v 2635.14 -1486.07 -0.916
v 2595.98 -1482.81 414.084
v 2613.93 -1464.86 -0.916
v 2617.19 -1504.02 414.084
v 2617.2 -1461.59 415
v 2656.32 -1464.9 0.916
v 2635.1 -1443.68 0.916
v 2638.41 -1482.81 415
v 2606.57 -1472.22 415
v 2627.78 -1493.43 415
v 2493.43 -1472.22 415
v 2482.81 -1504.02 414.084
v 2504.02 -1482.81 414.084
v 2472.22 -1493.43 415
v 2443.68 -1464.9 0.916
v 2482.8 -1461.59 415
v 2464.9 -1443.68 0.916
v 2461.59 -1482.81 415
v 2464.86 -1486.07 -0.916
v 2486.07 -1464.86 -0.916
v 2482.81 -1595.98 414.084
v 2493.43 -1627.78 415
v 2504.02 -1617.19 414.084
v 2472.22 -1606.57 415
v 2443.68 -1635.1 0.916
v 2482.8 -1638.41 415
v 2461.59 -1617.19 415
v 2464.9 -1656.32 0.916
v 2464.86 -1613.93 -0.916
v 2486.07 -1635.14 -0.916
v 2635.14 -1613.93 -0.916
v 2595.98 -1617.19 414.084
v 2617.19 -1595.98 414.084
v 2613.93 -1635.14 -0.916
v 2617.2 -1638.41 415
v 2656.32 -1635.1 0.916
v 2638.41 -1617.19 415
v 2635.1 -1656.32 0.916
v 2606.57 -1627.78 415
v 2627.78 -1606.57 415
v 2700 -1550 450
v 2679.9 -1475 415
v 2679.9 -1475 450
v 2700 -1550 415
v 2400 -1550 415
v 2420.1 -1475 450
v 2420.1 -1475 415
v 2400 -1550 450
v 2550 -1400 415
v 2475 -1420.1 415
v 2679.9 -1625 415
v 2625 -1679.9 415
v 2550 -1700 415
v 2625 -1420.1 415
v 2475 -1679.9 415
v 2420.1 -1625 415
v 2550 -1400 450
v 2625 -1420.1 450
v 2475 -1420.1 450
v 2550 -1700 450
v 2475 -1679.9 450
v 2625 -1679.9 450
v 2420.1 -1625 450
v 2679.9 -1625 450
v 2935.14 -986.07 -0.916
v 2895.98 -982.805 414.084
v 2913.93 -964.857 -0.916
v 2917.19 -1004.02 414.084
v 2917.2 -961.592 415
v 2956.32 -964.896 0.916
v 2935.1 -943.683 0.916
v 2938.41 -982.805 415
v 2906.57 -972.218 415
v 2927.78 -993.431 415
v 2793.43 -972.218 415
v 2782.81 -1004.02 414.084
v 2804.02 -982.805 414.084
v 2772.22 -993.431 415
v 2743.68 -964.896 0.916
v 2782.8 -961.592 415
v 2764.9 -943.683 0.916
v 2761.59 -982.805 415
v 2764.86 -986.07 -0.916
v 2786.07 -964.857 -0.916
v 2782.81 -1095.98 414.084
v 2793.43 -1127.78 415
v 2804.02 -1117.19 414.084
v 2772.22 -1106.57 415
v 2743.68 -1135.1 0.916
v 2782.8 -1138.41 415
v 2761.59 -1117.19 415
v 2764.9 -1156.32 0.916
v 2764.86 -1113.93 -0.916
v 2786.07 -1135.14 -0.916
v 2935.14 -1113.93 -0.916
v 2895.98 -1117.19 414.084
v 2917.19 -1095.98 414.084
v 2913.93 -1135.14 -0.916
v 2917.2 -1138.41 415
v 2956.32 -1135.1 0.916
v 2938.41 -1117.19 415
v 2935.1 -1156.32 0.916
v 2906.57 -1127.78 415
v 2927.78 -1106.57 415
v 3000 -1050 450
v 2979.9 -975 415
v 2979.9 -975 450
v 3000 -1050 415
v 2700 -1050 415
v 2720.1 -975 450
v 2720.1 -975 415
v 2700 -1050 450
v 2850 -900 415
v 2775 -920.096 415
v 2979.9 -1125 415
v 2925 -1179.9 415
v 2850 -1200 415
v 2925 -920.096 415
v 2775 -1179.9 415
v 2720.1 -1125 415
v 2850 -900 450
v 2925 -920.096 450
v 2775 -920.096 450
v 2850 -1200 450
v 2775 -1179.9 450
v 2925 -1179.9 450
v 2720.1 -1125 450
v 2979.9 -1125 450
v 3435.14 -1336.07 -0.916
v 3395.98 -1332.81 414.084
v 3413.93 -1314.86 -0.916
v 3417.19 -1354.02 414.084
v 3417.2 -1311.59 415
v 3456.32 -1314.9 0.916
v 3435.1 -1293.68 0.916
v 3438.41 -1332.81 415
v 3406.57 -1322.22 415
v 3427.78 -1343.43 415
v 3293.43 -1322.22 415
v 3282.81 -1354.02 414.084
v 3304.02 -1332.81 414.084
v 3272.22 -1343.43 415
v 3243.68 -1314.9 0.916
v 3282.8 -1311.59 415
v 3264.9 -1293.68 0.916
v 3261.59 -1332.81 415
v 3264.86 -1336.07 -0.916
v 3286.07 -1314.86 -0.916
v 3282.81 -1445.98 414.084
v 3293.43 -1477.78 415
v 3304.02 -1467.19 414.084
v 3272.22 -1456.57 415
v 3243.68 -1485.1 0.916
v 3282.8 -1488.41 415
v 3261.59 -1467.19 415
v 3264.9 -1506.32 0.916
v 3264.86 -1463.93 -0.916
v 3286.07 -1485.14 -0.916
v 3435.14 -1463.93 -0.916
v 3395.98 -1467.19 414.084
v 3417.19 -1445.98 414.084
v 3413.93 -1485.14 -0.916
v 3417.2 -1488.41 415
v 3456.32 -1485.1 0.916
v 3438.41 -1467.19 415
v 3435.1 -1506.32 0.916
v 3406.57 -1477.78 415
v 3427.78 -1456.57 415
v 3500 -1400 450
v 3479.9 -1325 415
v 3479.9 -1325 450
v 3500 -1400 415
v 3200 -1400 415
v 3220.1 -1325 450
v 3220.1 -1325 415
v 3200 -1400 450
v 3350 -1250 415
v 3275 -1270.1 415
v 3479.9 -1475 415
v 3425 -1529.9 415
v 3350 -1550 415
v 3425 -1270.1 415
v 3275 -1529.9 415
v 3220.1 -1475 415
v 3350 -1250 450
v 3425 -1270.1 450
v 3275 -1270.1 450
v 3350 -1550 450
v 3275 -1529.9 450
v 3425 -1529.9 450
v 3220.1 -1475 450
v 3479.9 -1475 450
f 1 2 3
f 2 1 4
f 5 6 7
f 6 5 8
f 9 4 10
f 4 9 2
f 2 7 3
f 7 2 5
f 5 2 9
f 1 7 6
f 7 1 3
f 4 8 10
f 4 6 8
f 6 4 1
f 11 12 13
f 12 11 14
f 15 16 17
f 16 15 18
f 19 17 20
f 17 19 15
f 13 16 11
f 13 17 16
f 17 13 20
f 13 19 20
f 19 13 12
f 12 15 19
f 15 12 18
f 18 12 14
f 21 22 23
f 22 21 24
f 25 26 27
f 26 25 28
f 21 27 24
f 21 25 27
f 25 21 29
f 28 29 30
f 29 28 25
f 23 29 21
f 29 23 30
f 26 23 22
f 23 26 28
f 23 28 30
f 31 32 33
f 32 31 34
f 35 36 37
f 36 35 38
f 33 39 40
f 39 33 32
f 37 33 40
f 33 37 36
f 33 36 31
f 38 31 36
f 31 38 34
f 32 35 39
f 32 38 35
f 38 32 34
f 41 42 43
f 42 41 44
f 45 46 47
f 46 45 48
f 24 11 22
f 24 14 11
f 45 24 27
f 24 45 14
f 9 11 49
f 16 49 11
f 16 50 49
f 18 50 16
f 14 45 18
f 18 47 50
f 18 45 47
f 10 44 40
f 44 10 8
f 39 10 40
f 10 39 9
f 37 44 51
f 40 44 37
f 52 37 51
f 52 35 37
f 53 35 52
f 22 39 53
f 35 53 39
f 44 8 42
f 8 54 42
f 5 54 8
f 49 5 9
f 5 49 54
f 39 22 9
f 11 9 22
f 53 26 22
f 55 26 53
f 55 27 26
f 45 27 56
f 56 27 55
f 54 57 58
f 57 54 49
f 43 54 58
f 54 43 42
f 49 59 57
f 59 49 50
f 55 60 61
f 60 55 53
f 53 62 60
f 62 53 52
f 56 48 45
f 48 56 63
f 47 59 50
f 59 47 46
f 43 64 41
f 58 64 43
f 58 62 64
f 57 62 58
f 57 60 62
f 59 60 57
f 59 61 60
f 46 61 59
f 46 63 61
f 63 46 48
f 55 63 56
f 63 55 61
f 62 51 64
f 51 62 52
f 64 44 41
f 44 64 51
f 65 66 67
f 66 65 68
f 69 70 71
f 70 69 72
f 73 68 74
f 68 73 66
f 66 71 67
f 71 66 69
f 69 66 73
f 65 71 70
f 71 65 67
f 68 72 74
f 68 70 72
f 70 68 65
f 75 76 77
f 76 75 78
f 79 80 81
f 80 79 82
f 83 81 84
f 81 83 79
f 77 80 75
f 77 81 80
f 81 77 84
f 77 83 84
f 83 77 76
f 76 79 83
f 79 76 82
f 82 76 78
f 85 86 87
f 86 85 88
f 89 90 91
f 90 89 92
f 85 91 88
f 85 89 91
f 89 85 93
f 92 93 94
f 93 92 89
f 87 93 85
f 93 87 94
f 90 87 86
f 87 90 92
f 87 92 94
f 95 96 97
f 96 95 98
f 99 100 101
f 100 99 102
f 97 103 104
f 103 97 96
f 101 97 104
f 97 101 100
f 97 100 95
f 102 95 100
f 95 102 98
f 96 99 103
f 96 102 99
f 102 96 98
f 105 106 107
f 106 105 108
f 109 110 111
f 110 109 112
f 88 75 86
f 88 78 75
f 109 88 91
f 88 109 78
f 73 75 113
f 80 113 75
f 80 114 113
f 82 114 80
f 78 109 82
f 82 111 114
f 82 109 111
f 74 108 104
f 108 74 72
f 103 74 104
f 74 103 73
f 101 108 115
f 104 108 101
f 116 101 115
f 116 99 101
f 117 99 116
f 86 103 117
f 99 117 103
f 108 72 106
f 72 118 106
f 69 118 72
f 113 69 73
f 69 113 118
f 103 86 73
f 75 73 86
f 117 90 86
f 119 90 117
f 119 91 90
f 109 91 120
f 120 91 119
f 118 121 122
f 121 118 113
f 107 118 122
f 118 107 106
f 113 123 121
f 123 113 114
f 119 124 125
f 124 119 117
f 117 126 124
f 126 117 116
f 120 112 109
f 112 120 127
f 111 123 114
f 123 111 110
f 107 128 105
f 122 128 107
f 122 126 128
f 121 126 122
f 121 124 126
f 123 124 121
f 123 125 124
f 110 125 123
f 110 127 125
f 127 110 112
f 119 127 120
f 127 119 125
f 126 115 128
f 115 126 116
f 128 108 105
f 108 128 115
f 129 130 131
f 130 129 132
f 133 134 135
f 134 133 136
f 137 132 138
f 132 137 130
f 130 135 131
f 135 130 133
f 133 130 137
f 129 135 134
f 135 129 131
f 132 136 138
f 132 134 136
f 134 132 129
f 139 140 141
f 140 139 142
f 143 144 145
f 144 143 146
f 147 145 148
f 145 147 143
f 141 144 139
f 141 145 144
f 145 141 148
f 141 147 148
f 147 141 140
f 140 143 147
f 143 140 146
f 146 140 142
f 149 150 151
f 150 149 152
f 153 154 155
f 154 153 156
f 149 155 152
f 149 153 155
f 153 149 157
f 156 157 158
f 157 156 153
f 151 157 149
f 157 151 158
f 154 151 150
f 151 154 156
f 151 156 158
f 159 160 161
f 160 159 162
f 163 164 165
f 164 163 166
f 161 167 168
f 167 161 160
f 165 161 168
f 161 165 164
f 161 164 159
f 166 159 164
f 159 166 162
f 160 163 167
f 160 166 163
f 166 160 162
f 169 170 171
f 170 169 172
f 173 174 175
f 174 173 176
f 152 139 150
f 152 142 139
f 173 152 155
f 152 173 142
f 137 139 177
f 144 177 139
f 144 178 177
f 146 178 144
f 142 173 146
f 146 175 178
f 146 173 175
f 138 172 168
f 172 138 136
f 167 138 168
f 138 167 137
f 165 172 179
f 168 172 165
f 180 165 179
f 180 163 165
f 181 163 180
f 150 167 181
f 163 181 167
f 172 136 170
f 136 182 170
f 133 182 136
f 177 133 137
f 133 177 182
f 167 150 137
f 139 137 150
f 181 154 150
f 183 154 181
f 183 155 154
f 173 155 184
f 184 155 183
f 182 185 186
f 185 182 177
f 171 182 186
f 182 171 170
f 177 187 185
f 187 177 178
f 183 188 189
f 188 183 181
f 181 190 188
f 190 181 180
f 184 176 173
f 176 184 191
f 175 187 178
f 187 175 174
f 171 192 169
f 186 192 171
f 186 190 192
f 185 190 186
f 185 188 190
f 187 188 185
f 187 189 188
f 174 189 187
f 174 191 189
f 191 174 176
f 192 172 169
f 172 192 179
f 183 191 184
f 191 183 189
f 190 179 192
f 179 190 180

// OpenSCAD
// file: tea_shop_furniture_parameters.scad
// =============================================================================
// TEA SHOP DIORAMA — GROUP 6: EXTERIOR FURNITURE PARAMETERS
// =============================================================================
// All units: mm (1000 mm = 1.0 m), 1:1 real-world scale (1000 units = 1 GTA unit).
// Shared global coordinate system (identical to Groups 1–5):
//   +X -> left -> right  (0 = left outer wall, BUILD_W = right outer wall)
//   +Y -> front -> back  (0 = front wall eave face, BUILD_D = back wall, porch in -Y)
//   +Z -> up             (0 = top surface of base slab / ground datum)
// =============================================================================

// =============================================================================
// 1. SHARED GLOBAL VARIABLES (Reused from Groups 1–5 — identical values)
// =============================================================================
WALL_T             = 250;   // wall panel thickness                      (0.25 m)
BUILD_W            = 6000;  // building width along X                    (6.00 m)
BUILD_D            = 4000;  // building depth along Y                    (4.00 m)
FRONT_H            = 2400;  // wall height at FRONT eave (short side)    (2.40 m)
WIN_X              = 600;   // left pier width / window start X datum    (0.60 m)
WIN_W              = 3400;  // service window width                      (3.40 m)
SILL_H             = 900;   // knee-wall sill height beneath window      (0.90 m)
BASE_H             = 200;   // base plinth vertical thickness            (0.20 m)
BASE_MARGIN_FRONT  = 3000;  // front porch slab depth (extends to Y=-3m) (3.00 m)

// Aliases for compatibility with earlier group files:
wall_thickness     = WALL_T;
building_width     = BUILD_W;
building_depth     = BUILD_D;
front_eave_height  = FRONT_H;
sill_height        = SILL_H;
base_front_margin  = BASE_MARGIN_FRONT;


// =============================================================================
// 2. GROUP 6 PARAMETERS — BENCH (Long Wooden Porch Bench)
// =============================================================================
// REFERENCE OBSERVATIONS (Images: page 1/2 daylight/night, page 5 clay,
// page 7 front elevation, page 8 wireframe, page 14 eye-level):
//
// 1. Bench Style & Proportions:
//    - Simple utilitarian Indian roadside tea stall wooden bench.
//    - Single flat solid rectangular wooden plank for the seat.
//    - Two leg assemblies (one at each end). Wireframe (page 8) and clay (page 5)
//      confirm each leg pair is NOT a solid A-frame slab, but TWO straight
//      square timber posts tied together under the seat by a horizontal cross
//      apron rail. The posts are vertical (0 deg angle) with inset mounting.
//    - Bench height is roughly half the window sill height:
//      SILL_H = 900 mm -> BENCH_HEIGHT = 460 mm (~18 inches standard seating).
//    - Bench length spans ~1500 mm, comfortably seating 3-4 patrons.
//    - Bench width is ~400 mm (standard 16-inch bench seat).
//
// [ESTIMATED DIMENSIONS NOTE]:
// - Bench top thickness (40 mm) estimated from front elevation pixel ratio
//   (~1/11 of bench height).
// - Leg post cross-section (45x45 mm) estimated from wireframe edge density.
// - Inset of legs from ends (80 mm) and edges (17.5 mm) estimated from clay shot.
// - Bench X position (X = 550 mm) sits under the left pier and left edge of
//   the service window, leaving clear passage to the counter and door.
// - Bench Y position (Y = -1250 mm) sits centrally under the pergola canopy
//   (between wall Y=0 and front post line Y=-2250 mm).
BENCH_LENGTH          = 1500; // bench seat plank length along X (mm)
BENCH_WIDTH           = 400;  // bench seat plank width along Y (mm)
BENCH_HEIGHT          = 460;  // total seat height from ground (Z=0) to top face (mm)
BENCH_TOP_THICKNESS   = 40;   // thickness of seat top plank (mm)

// Bench Leg Pair (2 posts + top cross apron rail per end):
BENCH_LEG_SIZE        = 45;   // square timber leg cross-section (45x45 mm)
BENCH_LEG_ANGLE       = 0;    // leg angle from vertical (0 deg = straight vertical posts)
BENCH_LEG_PAIR_WIDTH  = 320;  // center-to-center span across Y of the 2 end legs (mm)
                              // Outer edge-to-edge span = 320 + 45 = 365 mm
                              // Leaves (400 - 365)/2 = 17.5 mm front/back overhang
BENCH_LEG_INSET_X     = 80;   // inset of leg center from left/right plank ends (mm)
BENCH_APRON_WIDTH     = 30;   // thickness of horizontal cross apron rail along X (mm)
BENCH_APRON_HEIGHT    = 50;   // vertical height of horizontal cross apron rail (mm)

// Bench Porch Placement (World Coordinates):
BENCH_POS_X           = 550;  // left edge X coordinate of bench top (mm)
BENCH_POS_Y           = -1250;// center Y coordinate of bench (mm)
                              // Back edge is at Y = -1050 mm, Front edge at Y = -1450 mm
BENCH_ROT_Z           = 0;    // rotation angle about Z (0 = parallel to front wall)


// =============================================================================
// 3. GROUP 6 PARAMETERS — STOOLS (Round Wooden Porch Stools)
// =============================================================================
// REFERENCE OBSERVATIONS (Images: page 1/2, page 5 clay, page 7 elevation,
// page 8 wireframe, page 13 interior close-up, page 14 eye-level):
//
// 1. Stool Style & Proportions:
//    - Round wooden top seat disc with bevel/slight chamfer, resting on
//      4 splayed square timber legs.
//    - Polycount optimization: 12-sided cylinder ( = 12) provides a clean,
//      authentic round silhouette while keeping polycount low for GTA V MLO props.
//    - Stool height is 450 mm (level with the bench, exactly half the 900mm sill).
//    - Seat diameter is 300 mm (~12 inches), standard for street tea stalls.
//    - Legs splay outward slightly from under the seat disc (angle ~3.5 deg),
//      ensuring stability while remaining inside the seat diameter footprint at the base.
//
// 2. Stool Clustering Layout:
//    - The reference images show 3 stools clustered together directly in front of
//      the counter window (X = 2500..3400 mm), where patrons sit to drink tea.
//    - They are NOT placed on a rigid grid:
//        * Stool 1: [2550, -1550] — front-left of the cluster, closer to walkway
//        * Stool 2: [2850, -1050] — back-mid of the cluster, closer to counter window
//        * Stool 3: [3350, -1400] — front-right of the cluster, near entrance path
//
// [ESTIMATED DIMENSIONS NOTE]:
// - Seat thickness (35 mm) estimated from front elevation and wireframe.
// - Leg cross-section (30x30 mm) estimated from wireframe edge density.
// - Splay angle (3.5 deg) estimated from wireframe slope relative to vertical.
STOOL_HEIGHT          = 450;  // total height to top of stool seat (mm)
STOOL_SEAT_DIA        = 300;  // round seat disc diameter (mm)
STOOL_SEAT_RADIUS     = STOOL_SEAT_DIA / 2; // 150 mm
STOOL_SEAT_THICKNESS  = 35;   // seat disc thickness (mm)

// Stool Leg Dimensions:
STOOL_LEG_SIZE        = 30;   // square timber leg cross-section (30x30 mm)
STOOL_LEG_SPLAY_ANGLE = 3.5;  // outward splay angle from vertical (degrees)
STOOL_LEG_RADIUS_TOP  = 95;   // radial distance of leg center from stool center at top (mm)
                              // Leaves 150 - (95 + 15) = 40 mm seat lip overhang

// Derived stool leg length along its angled axis:
STOOL_LEG_H           = STOOL_HEIGHT - STOOL_SEAT_THICKNESS; // vertical leg span (415 mm)
STOOL_LEG_LEN         = STOOL_LEG_H / cos(STOOL_LEG_SPLAY_ANGLE); // angled length (~415.78 mm)

// Low-poly curvature resolution for MLO optimization:
STOOL_FN              = 12;   // 12-sided polygon for round seat disc (MLO target)

// Stool Positions Array (3 clustered [X, Y] coordinates on the porch):
STOOL_POSITIONS = [
    [2550, -1550],  // Stool 1: Front-Left
    [2850, -1050],  // Stool 2: Back-Mid (near counter)
    [3350, -1400]   // Stool 3: Front-Right (near entrance)
];
// main file
// =============================================================================
// TEA SHOP DIORAMA — GROUP 6: STOOLS (ALL 3 STOOLS)
// =============================================================================
// Standalone export for all 3 round wooden stools.
// Positioned directly in world coordinates on top of the base slab.
// =============================================================================

include <tea_shop_furniture_modules.scad>;

// 3 Stools clustered near counter window:
stool(index = 0, world_pos = true);
stool(index = 1, world_pos = true);
stool(index = 2, world_pos = true);
